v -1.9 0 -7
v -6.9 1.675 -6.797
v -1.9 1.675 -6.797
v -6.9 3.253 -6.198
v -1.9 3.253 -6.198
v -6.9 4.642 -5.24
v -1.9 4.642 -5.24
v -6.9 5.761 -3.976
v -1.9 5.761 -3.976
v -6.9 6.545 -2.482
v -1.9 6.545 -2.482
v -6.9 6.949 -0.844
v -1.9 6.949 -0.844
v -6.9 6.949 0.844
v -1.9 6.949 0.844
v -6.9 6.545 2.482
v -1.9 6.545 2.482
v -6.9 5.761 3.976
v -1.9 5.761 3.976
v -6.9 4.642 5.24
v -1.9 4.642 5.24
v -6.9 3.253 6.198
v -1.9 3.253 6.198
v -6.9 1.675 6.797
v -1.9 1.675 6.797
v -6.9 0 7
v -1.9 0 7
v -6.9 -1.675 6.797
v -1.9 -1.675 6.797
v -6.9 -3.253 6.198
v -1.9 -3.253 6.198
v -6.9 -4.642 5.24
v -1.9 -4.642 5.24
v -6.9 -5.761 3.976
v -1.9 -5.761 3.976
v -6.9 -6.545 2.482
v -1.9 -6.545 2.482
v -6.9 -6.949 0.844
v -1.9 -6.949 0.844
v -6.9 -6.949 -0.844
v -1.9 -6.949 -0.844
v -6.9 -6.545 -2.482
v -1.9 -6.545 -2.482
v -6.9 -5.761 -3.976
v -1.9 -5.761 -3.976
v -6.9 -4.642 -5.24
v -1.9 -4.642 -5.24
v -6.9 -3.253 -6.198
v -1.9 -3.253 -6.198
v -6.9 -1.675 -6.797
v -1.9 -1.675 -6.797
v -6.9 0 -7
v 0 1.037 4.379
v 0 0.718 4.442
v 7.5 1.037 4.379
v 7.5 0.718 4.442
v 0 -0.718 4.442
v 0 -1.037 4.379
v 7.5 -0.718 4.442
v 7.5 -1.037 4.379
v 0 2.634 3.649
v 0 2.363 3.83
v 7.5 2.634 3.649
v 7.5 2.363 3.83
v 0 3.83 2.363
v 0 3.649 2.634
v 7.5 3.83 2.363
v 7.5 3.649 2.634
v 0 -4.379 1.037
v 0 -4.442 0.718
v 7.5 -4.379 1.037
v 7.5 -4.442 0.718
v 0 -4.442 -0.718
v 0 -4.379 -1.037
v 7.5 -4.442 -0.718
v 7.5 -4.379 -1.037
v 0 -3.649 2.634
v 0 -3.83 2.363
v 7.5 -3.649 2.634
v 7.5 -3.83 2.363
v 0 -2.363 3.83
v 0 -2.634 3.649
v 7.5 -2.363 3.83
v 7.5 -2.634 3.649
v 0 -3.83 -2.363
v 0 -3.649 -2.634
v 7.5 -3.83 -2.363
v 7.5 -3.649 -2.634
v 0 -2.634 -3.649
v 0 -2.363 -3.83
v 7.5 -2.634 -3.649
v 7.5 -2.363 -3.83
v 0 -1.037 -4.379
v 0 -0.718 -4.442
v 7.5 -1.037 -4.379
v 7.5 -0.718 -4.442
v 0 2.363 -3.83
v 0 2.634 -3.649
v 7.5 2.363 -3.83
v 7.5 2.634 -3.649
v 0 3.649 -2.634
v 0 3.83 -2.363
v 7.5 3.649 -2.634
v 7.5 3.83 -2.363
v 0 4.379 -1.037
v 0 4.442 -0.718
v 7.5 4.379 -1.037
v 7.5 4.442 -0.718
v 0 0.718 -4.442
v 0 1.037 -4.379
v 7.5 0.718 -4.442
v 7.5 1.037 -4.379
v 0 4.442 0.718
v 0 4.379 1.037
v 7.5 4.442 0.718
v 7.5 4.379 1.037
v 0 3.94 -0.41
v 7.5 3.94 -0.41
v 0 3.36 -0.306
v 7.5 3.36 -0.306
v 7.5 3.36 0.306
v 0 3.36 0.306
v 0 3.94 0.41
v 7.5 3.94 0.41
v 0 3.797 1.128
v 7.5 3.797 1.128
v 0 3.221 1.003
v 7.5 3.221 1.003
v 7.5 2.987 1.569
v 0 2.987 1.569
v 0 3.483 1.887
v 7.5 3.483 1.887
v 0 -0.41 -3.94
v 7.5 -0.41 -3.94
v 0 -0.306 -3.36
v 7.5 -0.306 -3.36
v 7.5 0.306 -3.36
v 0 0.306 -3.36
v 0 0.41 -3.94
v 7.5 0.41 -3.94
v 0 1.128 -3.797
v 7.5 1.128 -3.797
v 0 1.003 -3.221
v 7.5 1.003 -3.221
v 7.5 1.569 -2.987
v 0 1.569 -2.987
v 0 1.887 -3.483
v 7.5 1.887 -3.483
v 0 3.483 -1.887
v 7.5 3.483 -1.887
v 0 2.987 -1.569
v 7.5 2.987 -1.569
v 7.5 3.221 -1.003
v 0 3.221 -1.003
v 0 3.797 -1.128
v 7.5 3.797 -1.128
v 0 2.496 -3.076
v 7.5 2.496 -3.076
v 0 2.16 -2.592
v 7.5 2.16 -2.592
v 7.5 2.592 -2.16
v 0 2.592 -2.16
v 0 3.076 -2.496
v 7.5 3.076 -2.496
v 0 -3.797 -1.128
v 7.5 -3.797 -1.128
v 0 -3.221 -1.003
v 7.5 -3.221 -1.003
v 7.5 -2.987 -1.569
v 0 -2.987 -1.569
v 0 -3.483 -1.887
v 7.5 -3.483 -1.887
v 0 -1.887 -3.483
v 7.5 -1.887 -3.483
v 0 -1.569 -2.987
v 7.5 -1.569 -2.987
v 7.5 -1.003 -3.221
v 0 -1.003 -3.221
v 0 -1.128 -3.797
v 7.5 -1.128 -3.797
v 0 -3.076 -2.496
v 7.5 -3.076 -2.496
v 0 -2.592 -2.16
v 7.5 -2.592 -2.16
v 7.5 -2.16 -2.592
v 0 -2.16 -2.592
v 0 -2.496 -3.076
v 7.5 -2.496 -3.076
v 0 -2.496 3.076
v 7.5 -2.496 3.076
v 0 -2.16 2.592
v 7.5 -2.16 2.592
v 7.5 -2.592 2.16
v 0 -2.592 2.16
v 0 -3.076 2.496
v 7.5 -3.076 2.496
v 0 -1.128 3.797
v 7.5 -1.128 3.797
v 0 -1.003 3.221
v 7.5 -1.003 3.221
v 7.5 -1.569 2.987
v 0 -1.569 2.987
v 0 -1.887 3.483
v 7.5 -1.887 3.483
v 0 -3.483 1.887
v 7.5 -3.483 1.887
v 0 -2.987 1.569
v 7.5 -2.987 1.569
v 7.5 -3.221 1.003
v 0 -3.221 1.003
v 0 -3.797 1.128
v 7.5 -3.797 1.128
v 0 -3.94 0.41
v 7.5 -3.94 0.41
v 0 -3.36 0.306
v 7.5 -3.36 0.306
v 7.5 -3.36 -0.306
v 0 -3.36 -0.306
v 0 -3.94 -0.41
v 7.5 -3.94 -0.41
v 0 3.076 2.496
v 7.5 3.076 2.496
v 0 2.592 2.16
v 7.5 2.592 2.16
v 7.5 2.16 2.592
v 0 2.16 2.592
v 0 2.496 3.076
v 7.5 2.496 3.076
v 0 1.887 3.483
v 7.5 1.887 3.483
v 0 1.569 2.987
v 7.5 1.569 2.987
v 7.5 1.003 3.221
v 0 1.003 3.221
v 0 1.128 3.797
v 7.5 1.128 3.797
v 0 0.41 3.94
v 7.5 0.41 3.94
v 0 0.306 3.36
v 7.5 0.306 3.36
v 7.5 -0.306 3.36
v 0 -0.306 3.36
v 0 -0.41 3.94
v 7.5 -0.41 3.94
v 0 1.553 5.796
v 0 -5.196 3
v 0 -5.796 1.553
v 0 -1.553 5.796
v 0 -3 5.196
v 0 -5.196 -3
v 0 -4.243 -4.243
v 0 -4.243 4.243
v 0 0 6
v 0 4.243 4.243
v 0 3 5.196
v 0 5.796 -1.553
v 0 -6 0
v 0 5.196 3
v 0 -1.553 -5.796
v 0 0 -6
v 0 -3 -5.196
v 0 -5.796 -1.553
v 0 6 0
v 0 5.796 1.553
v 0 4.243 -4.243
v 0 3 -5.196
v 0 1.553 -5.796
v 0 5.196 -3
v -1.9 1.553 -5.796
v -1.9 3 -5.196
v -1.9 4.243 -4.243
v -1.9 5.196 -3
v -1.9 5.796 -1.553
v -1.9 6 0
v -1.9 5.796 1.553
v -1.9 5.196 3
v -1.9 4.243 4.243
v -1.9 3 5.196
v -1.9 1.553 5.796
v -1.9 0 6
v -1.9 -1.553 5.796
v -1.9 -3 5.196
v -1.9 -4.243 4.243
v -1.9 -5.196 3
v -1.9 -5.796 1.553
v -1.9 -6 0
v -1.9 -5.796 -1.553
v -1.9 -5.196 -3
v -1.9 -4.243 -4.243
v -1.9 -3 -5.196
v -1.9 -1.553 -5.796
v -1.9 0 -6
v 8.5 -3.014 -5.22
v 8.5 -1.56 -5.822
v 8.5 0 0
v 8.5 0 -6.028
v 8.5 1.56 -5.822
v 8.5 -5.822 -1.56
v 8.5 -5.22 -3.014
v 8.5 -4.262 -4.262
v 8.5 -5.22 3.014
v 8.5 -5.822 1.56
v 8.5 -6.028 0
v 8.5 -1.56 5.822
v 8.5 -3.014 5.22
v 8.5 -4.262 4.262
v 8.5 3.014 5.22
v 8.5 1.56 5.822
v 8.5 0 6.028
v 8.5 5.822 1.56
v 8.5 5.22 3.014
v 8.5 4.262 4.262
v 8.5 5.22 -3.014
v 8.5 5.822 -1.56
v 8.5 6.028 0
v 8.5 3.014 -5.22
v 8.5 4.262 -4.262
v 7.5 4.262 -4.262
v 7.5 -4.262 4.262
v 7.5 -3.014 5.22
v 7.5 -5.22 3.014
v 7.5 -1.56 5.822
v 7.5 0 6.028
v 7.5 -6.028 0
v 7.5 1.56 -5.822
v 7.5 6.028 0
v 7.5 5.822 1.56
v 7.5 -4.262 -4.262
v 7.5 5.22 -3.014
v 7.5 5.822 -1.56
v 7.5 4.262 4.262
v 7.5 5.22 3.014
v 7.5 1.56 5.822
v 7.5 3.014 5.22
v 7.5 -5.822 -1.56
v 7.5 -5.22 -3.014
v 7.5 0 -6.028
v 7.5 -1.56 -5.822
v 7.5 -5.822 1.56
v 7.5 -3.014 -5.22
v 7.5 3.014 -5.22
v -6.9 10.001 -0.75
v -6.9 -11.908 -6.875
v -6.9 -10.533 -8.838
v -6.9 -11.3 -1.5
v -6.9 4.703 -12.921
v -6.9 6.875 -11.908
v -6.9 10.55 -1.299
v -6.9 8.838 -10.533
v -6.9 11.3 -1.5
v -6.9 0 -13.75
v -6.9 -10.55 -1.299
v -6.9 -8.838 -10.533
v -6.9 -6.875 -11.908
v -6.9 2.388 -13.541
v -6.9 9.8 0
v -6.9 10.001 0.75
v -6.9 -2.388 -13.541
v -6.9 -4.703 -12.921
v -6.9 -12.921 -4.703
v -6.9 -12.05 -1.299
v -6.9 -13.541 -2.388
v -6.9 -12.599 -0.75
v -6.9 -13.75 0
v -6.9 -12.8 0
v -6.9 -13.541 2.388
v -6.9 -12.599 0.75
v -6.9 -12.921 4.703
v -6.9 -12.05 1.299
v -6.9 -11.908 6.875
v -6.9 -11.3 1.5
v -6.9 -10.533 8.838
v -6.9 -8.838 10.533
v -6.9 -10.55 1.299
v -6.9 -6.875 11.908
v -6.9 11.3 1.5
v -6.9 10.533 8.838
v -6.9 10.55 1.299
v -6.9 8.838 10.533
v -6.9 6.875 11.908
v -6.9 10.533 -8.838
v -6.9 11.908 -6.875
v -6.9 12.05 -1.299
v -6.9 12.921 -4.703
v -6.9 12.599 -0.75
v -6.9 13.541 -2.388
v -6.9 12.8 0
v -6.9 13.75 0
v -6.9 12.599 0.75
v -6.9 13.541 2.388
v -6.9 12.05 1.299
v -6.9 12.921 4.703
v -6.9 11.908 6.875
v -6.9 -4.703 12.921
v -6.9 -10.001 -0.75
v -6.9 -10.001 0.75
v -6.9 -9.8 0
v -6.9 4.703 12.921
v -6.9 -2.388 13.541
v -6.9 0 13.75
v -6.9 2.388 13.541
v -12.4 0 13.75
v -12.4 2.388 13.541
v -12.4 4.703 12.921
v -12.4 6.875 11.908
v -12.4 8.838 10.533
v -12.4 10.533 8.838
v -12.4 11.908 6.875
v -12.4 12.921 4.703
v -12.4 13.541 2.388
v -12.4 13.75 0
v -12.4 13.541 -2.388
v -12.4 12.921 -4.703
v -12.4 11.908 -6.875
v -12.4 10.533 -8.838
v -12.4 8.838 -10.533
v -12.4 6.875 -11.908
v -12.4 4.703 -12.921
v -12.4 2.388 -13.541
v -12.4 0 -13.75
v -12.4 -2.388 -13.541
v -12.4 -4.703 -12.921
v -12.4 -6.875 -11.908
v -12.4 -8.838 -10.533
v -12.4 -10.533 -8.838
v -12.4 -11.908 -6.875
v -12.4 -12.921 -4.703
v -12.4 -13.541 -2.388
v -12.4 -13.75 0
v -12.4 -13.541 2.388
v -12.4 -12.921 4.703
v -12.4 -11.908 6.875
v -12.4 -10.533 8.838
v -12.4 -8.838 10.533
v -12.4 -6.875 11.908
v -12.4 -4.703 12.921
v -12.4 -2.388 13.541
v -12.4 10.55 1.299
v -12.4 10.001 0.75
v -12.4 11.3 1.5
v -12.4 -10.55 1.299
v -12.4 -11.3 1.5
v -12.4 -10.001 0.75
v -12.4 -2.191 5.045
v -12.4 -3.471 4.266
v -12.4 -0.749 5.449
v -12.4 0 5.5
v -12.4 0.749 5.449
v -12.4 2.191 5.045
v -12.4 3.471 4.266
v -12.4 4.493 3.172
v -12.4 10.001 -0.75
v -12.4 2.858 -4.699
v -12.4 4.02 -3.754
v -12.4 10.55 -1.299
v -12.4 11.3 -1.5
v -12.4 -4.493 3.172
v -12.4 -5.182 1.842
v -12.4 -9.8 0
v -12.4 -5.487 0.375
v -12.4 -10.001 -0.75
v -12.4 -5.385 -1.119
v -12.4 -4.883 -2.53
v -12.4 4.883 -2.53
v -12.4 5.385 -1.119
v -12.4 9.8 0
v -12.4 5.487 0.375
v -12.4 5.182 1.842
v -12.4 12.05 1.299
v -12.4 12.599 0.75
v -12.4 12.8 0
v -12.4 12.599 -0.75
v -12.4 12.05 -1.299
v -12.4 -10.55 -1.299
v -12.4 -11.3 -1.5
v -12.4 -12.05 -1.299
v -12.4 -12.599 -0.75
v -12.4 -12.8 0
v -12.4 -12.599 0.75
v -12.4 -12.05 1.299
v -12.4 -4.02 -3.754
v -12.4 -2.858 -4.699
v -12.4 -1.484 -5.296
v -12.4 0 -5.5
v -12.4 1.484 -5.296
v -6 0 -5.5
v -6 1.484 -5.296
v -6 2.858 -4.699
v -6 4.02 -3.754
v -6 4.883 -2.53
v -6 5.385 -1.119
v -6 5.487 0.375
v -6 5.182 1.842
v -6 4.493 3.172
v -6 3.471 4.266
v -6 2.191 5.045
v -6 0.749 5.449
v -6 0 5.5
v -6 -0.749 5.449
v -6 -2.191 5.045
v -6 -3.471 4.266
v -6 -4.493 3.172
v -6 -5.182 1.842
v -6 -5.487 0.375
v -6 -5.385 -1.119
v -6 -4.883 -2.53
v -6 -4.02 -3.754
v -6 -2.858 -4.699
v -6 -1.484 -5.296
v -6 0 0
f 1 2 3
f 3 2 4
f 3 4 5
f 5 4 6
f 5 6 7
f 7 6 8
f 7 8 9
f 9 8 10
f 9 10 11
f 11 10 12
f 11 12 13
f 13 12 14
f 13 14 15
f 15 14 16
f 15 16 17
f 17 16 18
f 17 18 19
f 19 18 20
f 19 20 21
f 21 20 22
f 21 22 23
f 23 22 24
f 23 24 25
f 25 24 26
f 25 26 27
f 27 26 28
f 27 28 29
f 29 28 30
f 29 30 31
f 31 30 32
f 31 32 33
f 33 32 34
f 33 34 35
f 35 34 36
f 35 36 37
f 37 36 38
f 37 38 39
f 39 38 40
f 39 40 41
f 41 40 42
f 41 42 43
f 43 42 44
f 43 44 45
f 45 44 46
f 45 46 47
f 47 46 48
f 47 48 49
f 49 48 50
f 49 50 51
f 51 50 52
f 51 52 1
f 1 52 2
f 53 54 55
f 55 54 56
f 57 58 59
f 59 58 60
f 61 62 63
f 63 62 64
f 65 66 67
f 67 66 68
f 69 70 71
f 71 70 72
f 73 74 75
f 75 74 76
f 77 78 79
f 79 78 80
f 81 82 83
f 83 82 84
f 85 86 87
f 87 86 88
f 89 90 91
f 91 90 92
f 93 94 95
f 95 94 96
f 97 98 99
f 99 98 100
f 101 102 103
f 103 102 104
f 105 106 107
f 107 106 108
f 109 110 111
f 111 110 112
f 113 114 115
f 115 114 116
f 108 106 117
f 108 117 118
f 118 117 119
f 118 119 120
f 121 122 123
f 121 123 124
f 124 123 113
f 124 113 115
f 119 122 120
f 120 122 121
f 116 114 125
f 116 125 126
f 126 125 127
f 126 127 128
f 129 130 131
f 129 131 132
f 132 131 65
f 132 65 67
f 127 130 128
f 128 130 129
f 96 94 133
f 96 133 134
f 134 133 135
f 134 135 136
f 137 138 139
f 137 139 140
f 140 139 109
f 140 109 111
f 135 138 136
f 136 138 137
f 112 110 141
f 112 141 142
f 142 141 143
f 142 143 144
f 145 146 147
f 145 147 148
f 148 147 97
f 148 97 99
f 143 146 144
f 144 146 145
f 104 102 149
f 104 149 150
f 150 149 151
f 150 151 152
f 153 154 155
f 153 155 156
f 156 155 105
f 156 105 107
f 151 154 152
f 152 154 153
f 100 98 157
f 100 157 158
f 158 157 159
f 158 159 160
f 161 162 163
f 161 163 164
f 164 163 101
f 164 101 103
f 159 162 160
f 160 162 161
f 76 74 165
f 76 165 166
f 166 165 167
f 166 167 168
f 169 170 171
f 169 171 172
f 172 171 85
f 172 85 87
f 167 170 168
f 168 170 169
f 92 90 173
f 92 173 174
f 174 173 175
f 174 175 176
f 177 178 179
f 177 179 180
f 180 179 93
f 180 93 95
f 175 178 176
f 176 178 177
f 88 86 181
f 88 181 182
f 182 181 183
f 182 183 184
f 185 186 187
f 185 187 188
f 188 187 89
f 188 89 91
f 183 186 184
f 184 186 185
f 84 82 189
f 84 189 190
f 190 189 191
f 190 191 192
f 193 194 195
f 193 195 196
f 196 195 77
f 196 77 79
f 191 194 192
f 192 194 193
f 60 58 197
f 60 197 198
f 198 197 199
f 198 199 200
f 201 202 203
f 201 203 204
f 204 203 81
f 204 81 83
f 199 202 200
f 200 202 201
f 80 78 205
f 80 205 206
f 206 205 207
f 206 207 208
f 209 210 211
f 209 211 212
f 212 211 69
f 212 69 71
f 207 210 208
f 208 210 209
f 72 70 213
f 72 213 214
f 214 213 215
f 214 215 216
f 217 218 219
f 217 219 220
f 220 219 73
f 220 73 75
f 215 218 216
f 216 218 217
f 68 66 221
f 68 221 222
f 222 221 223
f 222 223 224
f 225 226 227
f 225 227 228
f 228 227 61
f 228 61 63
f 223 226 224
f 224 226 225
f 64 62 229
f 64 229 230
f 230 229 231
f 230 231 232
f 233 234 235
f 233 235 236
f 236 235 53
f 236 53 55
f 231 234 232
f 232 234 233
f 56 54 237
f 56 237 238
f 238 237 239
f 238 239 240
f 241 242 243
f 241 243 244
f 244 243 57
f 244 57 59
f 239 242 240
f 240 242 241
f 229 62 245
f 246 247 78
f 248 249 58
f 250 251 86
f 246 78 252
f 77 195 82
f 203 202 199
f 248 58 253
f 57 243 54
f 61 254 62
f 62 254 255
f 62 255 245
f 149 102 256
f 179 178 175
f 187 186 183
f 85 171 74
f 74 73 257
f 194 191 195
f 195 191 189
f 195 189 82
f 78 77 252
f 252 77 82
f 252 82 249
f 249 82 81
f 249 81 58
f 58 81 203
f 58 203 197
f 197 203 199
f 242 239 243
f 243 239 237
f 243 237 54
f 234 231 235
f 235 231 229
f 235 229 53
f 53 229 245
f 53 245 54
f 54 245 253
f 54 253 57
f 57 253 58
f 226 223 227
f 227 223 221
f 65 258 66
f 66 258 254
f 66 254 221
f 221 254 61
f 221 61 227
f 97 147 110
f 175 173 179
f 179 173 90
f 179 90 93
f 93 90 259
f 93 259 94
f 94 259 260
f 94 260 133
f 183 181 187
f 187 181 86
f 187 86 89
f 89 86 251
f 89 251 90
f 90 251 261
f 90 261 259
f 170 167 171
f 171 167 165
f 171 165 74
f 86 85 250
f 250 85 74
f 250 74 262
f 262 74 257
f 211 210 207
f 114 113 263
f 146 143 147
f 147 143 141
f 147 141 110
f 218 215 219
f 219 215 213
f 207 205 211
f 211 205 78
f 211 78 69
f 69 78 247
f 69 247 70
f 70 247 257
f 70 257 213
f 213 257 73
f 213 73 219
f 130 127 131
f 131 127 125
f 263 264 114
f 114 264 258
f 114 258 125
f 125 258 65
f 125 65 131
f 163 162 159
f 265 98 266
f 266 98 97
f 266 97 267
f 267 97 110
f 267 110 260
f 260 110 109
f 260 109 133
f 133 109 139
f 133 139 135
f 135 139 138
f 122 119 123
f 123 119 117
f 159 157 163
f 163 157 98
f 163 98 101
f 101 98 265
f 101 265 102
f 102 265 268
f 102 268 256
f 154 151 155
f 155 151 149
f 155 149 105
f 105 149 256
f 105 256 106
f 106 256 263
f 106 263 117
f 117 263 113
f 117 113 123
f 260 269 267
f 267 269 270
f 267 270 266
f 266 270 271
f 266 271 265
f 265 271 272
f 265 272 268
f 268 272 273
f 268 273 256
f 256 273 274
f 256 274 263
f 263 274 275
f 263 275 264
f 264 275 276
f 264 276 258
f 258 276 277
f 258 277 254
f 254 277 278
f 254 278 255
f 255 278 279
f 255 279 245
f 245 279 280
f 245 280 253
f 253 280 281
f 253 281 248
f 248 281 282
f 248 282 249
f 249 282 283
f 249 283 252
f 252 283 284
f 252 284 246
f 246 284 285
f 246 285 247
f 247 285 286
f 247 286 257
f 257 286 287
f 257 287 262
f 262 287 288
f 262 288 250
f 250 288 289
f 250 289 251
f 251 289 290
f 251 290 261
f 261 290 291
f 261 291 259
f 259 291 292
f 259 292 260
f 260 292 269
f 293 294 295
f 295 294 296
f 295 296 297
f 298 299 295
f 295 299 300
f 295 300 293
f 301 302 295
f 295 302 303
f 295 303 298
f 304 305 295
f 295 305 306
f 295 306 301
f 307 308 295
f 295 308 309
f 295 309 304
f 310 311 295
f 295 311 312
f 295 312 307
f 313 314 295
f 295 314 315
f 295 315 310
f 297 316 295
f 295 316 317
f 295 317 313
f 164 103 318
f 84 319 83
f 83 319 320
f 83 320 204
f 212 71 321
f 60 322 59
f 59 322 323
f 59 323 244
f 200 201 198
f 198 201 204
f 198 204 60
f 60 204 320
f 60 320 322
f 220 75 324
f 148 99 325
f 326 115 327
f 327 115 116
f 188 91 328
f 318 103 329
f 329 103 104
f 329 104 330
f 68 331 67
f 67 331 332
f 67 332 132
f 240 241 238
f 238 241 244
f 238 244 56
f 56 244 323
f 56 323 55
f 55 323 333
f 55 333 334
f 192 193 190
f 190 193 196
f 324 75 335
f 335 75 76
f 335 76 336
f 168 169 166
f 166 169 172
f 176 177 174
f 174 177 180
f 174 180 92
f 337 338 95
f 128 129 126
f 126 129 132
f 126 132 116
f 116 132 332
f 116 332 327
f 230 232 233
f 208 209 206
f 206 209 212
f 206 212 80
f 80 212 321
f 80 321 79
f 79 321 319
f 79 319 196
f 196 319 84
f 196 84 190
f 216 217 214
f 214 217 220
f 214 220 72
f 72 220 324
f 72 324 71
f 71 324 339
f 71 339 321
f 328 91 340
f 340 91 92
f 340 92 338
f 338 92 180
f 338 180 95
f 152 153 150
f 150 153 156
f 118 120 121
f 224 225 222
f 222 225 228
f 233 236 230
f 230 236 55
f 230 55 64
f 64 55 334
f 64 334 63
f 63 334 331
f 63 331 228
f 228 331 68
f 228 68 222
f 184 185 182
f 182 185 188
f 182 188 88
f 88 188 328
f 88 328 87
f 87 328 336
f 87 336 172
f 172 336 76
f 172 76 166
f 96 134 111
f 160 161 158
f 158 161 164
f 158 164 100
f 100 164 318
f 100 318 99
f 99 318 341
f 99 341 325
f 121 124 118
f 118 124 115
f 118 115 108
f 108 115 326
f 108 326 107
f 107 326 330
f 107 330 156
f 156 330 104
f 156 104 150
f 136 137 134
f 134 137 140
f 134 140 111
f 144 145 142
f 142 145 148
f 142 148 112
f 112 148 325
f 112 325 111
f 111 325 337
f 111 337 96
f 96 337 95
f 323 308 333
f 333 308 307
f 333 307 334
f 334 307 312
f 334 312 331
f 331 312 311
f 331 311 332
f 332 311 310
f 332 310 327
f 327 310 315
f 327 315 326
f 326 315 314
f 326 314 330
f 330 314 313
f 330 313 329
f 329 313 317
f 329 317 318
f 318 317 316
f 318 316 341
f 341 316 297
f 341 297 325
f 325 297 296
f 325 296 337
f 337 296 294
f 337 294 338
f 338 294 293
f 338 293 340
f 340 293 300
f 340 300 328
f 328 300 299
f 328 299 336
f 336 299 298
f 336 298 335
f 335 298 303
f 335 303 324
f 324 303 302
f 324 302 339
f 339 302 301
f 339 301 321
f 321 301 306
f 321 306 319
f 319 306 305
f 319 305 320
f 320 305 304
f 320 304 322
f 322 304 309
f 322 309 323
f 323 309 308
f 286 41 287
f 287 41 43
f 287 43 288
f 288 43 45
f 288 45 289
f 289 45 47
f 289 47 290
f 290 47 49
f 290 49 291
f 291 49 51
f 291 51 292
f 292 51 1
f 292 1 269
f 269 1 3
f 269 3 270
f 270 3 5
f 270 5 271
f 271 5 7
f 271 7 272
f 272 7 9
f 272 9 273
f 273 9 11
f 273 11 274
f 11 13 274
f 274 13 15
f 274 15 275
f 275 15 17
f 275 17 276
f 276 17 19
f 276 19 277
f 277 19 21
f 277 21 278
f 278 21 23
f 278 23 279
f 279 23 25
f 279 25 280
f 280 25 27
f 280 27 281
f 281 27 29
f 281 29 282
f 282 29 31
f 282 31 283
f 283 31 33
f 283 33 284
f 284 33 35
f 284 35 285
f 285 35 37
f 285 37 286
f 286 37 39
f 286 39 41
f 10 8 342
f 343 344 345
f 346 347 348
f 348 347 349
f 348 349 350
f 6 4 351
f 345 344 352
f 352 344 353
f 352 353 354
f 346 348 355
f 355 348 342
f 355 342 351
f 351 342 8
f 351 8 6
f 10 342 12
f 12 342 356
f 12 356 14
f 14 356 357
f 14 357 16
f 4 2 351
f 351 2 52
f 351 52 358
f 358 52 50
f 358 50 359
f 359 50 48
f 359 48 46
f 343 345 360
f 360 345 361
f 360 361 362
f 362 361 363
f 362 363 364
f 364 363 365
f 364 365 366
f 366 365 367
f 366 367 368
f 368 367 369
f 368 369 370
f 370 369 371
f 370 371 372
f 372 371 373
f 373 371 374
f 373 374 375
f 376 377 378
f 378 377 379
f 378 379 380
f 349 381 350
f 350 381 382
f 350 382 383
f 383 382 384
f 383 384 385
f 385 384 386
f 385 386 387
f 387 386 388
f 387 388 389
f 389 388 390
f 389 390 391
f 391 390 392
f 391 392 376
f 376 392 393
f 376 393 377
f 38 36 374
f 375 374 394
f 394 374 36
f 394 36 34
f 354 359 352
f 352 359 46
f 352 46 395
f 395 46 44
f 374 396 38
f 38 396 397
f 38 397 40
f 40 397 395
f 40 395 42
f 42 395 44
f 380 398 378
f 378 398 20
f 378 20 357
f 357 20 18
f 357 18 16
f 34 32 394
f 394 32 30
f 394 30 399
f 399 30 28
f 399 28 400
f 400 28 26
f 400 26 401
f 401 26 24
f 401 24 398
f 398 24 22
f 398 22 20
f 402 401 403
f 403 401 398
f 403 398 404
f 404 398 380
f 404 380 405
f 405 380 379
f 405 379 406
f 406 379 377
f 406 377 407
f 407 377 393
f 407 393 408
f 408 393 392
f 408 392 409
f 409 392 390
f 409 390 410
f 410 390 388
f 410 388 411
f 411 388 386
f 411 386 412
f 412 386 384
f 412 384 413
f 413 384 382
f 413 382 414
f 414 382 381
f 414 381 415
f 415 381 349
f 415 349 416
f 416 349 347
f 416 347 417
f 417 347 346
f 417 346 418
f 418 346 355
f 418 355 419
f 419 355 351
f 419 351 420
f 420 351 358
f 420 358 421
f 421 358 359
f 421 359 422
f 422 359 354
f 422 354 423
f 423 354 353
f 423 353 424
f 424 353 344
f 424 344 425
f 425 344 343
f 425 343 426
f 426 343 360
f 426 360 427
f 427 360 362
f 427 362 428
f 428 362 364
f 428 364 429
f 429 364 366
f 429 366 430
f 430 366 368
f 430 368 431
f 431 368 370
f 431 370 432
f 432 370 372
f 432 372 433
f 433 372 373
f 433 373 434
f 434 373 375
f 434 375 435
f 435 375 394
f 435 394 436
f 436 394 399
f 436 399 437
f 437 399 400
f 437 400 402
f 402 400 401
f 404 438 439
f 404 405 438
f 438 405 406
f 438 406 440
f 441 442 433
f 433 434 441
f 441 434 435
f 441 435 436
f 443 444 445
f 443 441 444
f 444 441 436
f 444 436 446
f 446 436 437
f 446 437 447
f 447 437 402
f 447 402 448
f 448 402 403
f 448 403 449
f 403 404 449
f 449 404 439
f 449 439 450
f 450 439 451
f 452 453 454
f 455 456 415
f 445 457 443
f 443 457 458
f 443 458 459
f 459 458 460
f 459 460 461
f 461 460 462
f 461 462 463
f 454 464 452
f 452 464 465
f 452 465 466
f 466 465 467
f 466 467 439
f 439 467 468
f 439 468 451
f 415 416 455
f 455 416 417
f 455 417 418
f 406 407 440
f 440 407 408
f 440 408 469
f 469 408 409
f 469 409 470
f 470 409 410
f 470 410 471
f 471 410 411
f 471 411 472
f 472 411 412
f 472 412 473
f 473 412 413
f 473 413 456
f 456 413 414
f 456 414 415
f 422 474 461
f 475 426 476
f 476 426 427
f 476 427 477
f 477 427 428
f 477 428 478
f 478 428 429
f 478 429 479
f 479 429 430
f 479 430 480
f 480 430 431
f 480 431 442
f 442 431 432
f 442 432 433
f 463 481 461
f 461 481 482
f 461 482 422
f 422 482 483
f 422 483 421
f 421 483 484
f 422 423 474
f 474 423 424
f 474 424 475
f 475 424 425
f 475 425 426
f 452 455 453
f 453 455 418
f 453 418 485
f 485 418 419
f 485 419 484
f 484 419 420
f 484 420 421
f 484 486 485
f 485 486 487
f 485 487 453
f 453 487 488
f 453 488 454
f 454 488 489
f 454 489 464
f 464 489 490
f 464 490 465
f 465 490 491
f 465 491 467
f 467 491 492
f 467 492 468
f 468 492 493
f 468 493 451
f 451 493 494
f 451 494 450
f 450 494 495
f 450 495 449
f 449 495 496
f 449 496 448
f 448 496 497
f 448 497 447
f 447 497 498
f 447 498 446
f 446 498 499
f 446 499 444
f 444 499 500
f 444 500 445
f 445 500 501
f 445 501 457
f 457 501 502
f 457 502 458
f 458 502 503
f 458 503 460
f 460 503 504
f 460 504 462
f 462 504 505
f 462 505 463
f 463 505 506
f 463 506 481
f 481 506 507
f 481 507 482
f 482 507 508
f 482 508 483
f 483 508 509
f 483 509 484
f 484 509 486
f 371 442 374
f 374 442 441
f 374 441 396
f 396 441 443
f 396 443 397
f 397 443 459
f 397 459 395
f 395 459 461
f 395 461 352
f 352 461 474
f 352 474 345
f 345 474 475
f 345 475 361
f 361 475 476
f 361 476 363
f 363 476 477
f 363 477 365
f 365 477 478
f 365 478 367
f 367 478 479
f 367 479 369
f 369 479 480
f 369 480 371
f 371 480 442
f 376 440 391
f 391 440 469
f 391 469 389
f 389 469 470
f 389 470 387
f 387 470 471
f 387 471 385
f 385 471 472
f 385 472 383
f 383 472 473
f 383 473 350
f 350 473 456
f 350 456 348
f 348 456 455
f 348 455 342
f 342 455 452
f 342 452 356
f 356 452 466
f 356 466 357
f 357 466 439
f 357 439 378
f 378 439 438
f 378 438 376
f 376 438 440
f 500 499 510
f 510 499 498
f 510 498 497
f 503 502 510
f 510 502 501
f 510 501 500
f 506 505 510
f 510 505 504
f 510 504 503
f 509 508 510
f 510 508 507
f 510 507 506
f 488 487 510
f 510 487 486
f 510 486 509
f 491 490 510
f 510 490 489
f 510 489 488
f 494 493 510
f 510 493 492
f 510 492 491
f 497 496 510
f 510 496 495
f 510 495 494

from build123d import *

# Parameters (mm, degrees)
BASPROSKE_W             = 7.5
BASPROSKE_H             = 4.5
TOOTHCUT_DEPTH          = 10.836157786
TEETHCUTS_COUNT         = 16
TEETHCUTS_ANGLE         = 337.5
BORSKE_R                = 2.5
BORE_DEPTH              = 50.0000508
ESQUISSE4_R             = 6
BOSS_EXTRU_3_DEPTH      = 1.9
ESQUISSE5_R             = 6.027848577
ESQUISSE5_R_2           = 2.85
BOSS_EXTRU_4_DEPTH      = 1
ESQUISSE7_R             = 3.00711341
BOSS_EXTRU_6_DEPTH      = 8.5
ESQUISSE8_R             = 7
ESQUISSE8_R_2           = 5.5
BOSS_EXTRU_7_DEPTH      = 7
BOSS_EXTRU_8_DEPTH      = 3.5
BOSS_EXTRU_8_DEPTH_BACK = 2
ESQUISSE9_R             = 13.75
ESQUISSE9_R_2           = 5.5
ESQUISSE10_R            = 1.5
ENL_V_MAT_EXTRU_3_DEPTH = 29.547066399
ESQUISSE11_R            = 3
ENL_V_MAT_EXTRU_4_DEPTH = 4
BOSS_EXTRU_9_START      = 2.1
ESQUISSE13_R            = 5.5
BOSS_EXTRU_9_DEPTH      = 10
ENL_V_START             = -4
ESQUISSE14_R            = 5.5
ENL_V_MAT_EXTRU_5_DEPTH = 4
ESQUISSE15_R            = 3.3
BOSS_EXTRU_10_DEPTH     = 14.5


with BuildPart() as part:
    # BasProSke → Base-Revolve (revolve)
    with BuildSketch(Plane(origin=(0, 0, 0), x_dir=(1, 0, 0), z_dir=(0, 1, 0)), mode=Mode.PRIVATE) as base_revolve_sk:
        with Locations((3.75, 2.25)):
            Rectangle(BASPROSKE_W, BASPROSKE_H)
    revolve(base_revolve_sk.sketch.rotate(Axis((-10, 0, 0), (1, 0, 0)), 180), axis=Axis((-10, 0, 0), (1, 0, 0)))

    # TooCutSke → ToothCut (cut, through all)
    with BuildSketch(Plane(origin=(0, 0, 0), x_dir=(0, 0, -1), z_dir=(1, 0, 0))):
        with BuildLine():
            ThreePointArc((0.306025637, 3.360092902), (0, 3.374), (-0.306025637, 3.360092902))
            ThreePointArc((-0.306025637, 3.360092902), (-0.415941512, 3.953968919), (-0.738171669, 4.464789776))
            ThreePointArc((-0.738171669, 4.464789776), (0, 4.5254), (0.738171669, 4.464789776))
            ThreePointArc((0.738171669, 4.464789776), (0.415941512, 3.953968919), (0.306025637, 3.360092902))
        make_face()
    toothcut = extrude(amount=TOOTHCUT_DEPTH, mode=Mode.SUBTRACT)

    # TeethCuts: ToothCut ×16 about axis
    teethcuts_axis = Axis((-10, 0, 0), (1, 0, 0))
    for i in range(1, TEETHCUTS_COUNT):
        add(toothcut.rotate(teethcuts_axis, i * TEETHCUTS_ANGLE / (TEETHCUTS_COUNT - 1)), mode=Mode.SUBTRACT)

    # BorSke → Bore (cut, symmetric)
    with BuildSketch(Plane(origin=(0, 0, 0), x_dir=(0, 0, -1), z_dir=(1, 0, 0))):
        with Locations(Location((0, 0, 0), (0, 0, 180))):
            Circle(BORSKE_R)
    extrude(amount=BORE_DEPTH, both=True, mode=Mode.SUBTRACT)

    # Esquisse4 → Boss.-Extru.3 (add)
    with BuildSketch(Plane.ZY):
        with Locations(Location((0, 0, 0), (0, 0, 180))):
            Circle(ESQUISSE4_R)
    extrude(amount=BOSS_EXTRU_3_DEPTH)

    # Esquisse5 → Boss.-Extru.4 (add)
    with BuildSketch(Plane(origin=(7.5, 0, 0), x_dir=(0, 0, -1), z_dir=(1, 0, 0))):
        Circle(ESQUISSE5_R)
        Circle(ESQUISSE5_R_2, mode=Mode.SUBTRACT)
    extrude(amount=BOSS_EXTRU_4_DEPTH)

    # Esquisse7 → Boss.-Extru.6 (add)
    with BuildSketch(Plane(origin=(0, 0, 0), x_dir=(0, 0, -1), z_dir=(1, 0, 0))):
        Circle(ESQUISSE7_R)
    extrude(amount=BOSS_EXTRU_6_DEPTH)

    # Esquisse8 → Boss.-Extru.7 (add)
    with BuildSketch(Plane.ZY.offset(1.9)):
        Circle(ESQUISSE8_R)
        Circle(ESQUISSE8_R_2, mode=Mode.SUBTRACT)
    extrude(amount=BOSS_EXTRU_7_DEPTH)

    # Esquisse9 → Boss.-Extru.8 (add, two sides: drawn at the far end of the back side and taken through both)
    with BuildSketch(Plane.ZY.offset(8.9).offset(-BOSS_EXTRU_8_DEPTH_BACK)):
        Circle(ESQUISSE9_R)
        Circle(ESQUISSE9_R_2, mode=Mode.SUBTRACT)
    extrude(amount=BOSS_EXTRU_8_DEPTH + BOSS_EXTRU_8_DEPTH_BACK)

    # Esquisse10 → Enlèv. mat.-Extru.3 (cut, through all)
    with BuildSketch(Plane.ZY.offset(12.4)):
        with Locations((0, 11.3)):
            Circle(ESQUISSE10_R)
        with Locations((0, -11.3)):
            Circle(ESQUISSE10_R)
    extrude(amount=-ENL_V_MAT_EXTRU_3_DEPTH, mode=Mode.SUBTRACT)

    # Esquisse11 → Enlèv. mat.-Extru.4 (cut)
    with BuildSketch(Plane.ZY.offset(1.9)):
        Circle(ESQUISSE11_R)
    extrude(amount=-ENL_V_MAT_EXTRU_4_DEPTH, mode=Mode.SUBTRACT)

    # Esquisse13 → Boss.-Extru.9 (add)
    with BuildSketch(Plane.ZY.offset(-2.1).offset(BOSS_EXTRU_9_START)):
        Circle(ESQUISSE13_R)
    extrude(amount=BOSS_EXTRU_9_DEPTH)

    # Esquisse14 → Enlèv. mat.-Extru.5 (cut)
    with BuildSketch(Plane.ZY.offset(10).offset(ENL_V_START)):
        Circle(ESQUISSE14_R)
    extrude(amount=ENL_V_MAT_EXTRU_5_DEPTH, mode=Mode.SUBTRACT)

    # Esquisse15 → Boss.-Extru.10 (add)
    with BuildSketch(Plane.ZY.offset(6)):
        Circle(ESQUISSE15_R)
    extrude(amount=-BOSS_EXTRU_10_DEPTH)


solid = part.part
